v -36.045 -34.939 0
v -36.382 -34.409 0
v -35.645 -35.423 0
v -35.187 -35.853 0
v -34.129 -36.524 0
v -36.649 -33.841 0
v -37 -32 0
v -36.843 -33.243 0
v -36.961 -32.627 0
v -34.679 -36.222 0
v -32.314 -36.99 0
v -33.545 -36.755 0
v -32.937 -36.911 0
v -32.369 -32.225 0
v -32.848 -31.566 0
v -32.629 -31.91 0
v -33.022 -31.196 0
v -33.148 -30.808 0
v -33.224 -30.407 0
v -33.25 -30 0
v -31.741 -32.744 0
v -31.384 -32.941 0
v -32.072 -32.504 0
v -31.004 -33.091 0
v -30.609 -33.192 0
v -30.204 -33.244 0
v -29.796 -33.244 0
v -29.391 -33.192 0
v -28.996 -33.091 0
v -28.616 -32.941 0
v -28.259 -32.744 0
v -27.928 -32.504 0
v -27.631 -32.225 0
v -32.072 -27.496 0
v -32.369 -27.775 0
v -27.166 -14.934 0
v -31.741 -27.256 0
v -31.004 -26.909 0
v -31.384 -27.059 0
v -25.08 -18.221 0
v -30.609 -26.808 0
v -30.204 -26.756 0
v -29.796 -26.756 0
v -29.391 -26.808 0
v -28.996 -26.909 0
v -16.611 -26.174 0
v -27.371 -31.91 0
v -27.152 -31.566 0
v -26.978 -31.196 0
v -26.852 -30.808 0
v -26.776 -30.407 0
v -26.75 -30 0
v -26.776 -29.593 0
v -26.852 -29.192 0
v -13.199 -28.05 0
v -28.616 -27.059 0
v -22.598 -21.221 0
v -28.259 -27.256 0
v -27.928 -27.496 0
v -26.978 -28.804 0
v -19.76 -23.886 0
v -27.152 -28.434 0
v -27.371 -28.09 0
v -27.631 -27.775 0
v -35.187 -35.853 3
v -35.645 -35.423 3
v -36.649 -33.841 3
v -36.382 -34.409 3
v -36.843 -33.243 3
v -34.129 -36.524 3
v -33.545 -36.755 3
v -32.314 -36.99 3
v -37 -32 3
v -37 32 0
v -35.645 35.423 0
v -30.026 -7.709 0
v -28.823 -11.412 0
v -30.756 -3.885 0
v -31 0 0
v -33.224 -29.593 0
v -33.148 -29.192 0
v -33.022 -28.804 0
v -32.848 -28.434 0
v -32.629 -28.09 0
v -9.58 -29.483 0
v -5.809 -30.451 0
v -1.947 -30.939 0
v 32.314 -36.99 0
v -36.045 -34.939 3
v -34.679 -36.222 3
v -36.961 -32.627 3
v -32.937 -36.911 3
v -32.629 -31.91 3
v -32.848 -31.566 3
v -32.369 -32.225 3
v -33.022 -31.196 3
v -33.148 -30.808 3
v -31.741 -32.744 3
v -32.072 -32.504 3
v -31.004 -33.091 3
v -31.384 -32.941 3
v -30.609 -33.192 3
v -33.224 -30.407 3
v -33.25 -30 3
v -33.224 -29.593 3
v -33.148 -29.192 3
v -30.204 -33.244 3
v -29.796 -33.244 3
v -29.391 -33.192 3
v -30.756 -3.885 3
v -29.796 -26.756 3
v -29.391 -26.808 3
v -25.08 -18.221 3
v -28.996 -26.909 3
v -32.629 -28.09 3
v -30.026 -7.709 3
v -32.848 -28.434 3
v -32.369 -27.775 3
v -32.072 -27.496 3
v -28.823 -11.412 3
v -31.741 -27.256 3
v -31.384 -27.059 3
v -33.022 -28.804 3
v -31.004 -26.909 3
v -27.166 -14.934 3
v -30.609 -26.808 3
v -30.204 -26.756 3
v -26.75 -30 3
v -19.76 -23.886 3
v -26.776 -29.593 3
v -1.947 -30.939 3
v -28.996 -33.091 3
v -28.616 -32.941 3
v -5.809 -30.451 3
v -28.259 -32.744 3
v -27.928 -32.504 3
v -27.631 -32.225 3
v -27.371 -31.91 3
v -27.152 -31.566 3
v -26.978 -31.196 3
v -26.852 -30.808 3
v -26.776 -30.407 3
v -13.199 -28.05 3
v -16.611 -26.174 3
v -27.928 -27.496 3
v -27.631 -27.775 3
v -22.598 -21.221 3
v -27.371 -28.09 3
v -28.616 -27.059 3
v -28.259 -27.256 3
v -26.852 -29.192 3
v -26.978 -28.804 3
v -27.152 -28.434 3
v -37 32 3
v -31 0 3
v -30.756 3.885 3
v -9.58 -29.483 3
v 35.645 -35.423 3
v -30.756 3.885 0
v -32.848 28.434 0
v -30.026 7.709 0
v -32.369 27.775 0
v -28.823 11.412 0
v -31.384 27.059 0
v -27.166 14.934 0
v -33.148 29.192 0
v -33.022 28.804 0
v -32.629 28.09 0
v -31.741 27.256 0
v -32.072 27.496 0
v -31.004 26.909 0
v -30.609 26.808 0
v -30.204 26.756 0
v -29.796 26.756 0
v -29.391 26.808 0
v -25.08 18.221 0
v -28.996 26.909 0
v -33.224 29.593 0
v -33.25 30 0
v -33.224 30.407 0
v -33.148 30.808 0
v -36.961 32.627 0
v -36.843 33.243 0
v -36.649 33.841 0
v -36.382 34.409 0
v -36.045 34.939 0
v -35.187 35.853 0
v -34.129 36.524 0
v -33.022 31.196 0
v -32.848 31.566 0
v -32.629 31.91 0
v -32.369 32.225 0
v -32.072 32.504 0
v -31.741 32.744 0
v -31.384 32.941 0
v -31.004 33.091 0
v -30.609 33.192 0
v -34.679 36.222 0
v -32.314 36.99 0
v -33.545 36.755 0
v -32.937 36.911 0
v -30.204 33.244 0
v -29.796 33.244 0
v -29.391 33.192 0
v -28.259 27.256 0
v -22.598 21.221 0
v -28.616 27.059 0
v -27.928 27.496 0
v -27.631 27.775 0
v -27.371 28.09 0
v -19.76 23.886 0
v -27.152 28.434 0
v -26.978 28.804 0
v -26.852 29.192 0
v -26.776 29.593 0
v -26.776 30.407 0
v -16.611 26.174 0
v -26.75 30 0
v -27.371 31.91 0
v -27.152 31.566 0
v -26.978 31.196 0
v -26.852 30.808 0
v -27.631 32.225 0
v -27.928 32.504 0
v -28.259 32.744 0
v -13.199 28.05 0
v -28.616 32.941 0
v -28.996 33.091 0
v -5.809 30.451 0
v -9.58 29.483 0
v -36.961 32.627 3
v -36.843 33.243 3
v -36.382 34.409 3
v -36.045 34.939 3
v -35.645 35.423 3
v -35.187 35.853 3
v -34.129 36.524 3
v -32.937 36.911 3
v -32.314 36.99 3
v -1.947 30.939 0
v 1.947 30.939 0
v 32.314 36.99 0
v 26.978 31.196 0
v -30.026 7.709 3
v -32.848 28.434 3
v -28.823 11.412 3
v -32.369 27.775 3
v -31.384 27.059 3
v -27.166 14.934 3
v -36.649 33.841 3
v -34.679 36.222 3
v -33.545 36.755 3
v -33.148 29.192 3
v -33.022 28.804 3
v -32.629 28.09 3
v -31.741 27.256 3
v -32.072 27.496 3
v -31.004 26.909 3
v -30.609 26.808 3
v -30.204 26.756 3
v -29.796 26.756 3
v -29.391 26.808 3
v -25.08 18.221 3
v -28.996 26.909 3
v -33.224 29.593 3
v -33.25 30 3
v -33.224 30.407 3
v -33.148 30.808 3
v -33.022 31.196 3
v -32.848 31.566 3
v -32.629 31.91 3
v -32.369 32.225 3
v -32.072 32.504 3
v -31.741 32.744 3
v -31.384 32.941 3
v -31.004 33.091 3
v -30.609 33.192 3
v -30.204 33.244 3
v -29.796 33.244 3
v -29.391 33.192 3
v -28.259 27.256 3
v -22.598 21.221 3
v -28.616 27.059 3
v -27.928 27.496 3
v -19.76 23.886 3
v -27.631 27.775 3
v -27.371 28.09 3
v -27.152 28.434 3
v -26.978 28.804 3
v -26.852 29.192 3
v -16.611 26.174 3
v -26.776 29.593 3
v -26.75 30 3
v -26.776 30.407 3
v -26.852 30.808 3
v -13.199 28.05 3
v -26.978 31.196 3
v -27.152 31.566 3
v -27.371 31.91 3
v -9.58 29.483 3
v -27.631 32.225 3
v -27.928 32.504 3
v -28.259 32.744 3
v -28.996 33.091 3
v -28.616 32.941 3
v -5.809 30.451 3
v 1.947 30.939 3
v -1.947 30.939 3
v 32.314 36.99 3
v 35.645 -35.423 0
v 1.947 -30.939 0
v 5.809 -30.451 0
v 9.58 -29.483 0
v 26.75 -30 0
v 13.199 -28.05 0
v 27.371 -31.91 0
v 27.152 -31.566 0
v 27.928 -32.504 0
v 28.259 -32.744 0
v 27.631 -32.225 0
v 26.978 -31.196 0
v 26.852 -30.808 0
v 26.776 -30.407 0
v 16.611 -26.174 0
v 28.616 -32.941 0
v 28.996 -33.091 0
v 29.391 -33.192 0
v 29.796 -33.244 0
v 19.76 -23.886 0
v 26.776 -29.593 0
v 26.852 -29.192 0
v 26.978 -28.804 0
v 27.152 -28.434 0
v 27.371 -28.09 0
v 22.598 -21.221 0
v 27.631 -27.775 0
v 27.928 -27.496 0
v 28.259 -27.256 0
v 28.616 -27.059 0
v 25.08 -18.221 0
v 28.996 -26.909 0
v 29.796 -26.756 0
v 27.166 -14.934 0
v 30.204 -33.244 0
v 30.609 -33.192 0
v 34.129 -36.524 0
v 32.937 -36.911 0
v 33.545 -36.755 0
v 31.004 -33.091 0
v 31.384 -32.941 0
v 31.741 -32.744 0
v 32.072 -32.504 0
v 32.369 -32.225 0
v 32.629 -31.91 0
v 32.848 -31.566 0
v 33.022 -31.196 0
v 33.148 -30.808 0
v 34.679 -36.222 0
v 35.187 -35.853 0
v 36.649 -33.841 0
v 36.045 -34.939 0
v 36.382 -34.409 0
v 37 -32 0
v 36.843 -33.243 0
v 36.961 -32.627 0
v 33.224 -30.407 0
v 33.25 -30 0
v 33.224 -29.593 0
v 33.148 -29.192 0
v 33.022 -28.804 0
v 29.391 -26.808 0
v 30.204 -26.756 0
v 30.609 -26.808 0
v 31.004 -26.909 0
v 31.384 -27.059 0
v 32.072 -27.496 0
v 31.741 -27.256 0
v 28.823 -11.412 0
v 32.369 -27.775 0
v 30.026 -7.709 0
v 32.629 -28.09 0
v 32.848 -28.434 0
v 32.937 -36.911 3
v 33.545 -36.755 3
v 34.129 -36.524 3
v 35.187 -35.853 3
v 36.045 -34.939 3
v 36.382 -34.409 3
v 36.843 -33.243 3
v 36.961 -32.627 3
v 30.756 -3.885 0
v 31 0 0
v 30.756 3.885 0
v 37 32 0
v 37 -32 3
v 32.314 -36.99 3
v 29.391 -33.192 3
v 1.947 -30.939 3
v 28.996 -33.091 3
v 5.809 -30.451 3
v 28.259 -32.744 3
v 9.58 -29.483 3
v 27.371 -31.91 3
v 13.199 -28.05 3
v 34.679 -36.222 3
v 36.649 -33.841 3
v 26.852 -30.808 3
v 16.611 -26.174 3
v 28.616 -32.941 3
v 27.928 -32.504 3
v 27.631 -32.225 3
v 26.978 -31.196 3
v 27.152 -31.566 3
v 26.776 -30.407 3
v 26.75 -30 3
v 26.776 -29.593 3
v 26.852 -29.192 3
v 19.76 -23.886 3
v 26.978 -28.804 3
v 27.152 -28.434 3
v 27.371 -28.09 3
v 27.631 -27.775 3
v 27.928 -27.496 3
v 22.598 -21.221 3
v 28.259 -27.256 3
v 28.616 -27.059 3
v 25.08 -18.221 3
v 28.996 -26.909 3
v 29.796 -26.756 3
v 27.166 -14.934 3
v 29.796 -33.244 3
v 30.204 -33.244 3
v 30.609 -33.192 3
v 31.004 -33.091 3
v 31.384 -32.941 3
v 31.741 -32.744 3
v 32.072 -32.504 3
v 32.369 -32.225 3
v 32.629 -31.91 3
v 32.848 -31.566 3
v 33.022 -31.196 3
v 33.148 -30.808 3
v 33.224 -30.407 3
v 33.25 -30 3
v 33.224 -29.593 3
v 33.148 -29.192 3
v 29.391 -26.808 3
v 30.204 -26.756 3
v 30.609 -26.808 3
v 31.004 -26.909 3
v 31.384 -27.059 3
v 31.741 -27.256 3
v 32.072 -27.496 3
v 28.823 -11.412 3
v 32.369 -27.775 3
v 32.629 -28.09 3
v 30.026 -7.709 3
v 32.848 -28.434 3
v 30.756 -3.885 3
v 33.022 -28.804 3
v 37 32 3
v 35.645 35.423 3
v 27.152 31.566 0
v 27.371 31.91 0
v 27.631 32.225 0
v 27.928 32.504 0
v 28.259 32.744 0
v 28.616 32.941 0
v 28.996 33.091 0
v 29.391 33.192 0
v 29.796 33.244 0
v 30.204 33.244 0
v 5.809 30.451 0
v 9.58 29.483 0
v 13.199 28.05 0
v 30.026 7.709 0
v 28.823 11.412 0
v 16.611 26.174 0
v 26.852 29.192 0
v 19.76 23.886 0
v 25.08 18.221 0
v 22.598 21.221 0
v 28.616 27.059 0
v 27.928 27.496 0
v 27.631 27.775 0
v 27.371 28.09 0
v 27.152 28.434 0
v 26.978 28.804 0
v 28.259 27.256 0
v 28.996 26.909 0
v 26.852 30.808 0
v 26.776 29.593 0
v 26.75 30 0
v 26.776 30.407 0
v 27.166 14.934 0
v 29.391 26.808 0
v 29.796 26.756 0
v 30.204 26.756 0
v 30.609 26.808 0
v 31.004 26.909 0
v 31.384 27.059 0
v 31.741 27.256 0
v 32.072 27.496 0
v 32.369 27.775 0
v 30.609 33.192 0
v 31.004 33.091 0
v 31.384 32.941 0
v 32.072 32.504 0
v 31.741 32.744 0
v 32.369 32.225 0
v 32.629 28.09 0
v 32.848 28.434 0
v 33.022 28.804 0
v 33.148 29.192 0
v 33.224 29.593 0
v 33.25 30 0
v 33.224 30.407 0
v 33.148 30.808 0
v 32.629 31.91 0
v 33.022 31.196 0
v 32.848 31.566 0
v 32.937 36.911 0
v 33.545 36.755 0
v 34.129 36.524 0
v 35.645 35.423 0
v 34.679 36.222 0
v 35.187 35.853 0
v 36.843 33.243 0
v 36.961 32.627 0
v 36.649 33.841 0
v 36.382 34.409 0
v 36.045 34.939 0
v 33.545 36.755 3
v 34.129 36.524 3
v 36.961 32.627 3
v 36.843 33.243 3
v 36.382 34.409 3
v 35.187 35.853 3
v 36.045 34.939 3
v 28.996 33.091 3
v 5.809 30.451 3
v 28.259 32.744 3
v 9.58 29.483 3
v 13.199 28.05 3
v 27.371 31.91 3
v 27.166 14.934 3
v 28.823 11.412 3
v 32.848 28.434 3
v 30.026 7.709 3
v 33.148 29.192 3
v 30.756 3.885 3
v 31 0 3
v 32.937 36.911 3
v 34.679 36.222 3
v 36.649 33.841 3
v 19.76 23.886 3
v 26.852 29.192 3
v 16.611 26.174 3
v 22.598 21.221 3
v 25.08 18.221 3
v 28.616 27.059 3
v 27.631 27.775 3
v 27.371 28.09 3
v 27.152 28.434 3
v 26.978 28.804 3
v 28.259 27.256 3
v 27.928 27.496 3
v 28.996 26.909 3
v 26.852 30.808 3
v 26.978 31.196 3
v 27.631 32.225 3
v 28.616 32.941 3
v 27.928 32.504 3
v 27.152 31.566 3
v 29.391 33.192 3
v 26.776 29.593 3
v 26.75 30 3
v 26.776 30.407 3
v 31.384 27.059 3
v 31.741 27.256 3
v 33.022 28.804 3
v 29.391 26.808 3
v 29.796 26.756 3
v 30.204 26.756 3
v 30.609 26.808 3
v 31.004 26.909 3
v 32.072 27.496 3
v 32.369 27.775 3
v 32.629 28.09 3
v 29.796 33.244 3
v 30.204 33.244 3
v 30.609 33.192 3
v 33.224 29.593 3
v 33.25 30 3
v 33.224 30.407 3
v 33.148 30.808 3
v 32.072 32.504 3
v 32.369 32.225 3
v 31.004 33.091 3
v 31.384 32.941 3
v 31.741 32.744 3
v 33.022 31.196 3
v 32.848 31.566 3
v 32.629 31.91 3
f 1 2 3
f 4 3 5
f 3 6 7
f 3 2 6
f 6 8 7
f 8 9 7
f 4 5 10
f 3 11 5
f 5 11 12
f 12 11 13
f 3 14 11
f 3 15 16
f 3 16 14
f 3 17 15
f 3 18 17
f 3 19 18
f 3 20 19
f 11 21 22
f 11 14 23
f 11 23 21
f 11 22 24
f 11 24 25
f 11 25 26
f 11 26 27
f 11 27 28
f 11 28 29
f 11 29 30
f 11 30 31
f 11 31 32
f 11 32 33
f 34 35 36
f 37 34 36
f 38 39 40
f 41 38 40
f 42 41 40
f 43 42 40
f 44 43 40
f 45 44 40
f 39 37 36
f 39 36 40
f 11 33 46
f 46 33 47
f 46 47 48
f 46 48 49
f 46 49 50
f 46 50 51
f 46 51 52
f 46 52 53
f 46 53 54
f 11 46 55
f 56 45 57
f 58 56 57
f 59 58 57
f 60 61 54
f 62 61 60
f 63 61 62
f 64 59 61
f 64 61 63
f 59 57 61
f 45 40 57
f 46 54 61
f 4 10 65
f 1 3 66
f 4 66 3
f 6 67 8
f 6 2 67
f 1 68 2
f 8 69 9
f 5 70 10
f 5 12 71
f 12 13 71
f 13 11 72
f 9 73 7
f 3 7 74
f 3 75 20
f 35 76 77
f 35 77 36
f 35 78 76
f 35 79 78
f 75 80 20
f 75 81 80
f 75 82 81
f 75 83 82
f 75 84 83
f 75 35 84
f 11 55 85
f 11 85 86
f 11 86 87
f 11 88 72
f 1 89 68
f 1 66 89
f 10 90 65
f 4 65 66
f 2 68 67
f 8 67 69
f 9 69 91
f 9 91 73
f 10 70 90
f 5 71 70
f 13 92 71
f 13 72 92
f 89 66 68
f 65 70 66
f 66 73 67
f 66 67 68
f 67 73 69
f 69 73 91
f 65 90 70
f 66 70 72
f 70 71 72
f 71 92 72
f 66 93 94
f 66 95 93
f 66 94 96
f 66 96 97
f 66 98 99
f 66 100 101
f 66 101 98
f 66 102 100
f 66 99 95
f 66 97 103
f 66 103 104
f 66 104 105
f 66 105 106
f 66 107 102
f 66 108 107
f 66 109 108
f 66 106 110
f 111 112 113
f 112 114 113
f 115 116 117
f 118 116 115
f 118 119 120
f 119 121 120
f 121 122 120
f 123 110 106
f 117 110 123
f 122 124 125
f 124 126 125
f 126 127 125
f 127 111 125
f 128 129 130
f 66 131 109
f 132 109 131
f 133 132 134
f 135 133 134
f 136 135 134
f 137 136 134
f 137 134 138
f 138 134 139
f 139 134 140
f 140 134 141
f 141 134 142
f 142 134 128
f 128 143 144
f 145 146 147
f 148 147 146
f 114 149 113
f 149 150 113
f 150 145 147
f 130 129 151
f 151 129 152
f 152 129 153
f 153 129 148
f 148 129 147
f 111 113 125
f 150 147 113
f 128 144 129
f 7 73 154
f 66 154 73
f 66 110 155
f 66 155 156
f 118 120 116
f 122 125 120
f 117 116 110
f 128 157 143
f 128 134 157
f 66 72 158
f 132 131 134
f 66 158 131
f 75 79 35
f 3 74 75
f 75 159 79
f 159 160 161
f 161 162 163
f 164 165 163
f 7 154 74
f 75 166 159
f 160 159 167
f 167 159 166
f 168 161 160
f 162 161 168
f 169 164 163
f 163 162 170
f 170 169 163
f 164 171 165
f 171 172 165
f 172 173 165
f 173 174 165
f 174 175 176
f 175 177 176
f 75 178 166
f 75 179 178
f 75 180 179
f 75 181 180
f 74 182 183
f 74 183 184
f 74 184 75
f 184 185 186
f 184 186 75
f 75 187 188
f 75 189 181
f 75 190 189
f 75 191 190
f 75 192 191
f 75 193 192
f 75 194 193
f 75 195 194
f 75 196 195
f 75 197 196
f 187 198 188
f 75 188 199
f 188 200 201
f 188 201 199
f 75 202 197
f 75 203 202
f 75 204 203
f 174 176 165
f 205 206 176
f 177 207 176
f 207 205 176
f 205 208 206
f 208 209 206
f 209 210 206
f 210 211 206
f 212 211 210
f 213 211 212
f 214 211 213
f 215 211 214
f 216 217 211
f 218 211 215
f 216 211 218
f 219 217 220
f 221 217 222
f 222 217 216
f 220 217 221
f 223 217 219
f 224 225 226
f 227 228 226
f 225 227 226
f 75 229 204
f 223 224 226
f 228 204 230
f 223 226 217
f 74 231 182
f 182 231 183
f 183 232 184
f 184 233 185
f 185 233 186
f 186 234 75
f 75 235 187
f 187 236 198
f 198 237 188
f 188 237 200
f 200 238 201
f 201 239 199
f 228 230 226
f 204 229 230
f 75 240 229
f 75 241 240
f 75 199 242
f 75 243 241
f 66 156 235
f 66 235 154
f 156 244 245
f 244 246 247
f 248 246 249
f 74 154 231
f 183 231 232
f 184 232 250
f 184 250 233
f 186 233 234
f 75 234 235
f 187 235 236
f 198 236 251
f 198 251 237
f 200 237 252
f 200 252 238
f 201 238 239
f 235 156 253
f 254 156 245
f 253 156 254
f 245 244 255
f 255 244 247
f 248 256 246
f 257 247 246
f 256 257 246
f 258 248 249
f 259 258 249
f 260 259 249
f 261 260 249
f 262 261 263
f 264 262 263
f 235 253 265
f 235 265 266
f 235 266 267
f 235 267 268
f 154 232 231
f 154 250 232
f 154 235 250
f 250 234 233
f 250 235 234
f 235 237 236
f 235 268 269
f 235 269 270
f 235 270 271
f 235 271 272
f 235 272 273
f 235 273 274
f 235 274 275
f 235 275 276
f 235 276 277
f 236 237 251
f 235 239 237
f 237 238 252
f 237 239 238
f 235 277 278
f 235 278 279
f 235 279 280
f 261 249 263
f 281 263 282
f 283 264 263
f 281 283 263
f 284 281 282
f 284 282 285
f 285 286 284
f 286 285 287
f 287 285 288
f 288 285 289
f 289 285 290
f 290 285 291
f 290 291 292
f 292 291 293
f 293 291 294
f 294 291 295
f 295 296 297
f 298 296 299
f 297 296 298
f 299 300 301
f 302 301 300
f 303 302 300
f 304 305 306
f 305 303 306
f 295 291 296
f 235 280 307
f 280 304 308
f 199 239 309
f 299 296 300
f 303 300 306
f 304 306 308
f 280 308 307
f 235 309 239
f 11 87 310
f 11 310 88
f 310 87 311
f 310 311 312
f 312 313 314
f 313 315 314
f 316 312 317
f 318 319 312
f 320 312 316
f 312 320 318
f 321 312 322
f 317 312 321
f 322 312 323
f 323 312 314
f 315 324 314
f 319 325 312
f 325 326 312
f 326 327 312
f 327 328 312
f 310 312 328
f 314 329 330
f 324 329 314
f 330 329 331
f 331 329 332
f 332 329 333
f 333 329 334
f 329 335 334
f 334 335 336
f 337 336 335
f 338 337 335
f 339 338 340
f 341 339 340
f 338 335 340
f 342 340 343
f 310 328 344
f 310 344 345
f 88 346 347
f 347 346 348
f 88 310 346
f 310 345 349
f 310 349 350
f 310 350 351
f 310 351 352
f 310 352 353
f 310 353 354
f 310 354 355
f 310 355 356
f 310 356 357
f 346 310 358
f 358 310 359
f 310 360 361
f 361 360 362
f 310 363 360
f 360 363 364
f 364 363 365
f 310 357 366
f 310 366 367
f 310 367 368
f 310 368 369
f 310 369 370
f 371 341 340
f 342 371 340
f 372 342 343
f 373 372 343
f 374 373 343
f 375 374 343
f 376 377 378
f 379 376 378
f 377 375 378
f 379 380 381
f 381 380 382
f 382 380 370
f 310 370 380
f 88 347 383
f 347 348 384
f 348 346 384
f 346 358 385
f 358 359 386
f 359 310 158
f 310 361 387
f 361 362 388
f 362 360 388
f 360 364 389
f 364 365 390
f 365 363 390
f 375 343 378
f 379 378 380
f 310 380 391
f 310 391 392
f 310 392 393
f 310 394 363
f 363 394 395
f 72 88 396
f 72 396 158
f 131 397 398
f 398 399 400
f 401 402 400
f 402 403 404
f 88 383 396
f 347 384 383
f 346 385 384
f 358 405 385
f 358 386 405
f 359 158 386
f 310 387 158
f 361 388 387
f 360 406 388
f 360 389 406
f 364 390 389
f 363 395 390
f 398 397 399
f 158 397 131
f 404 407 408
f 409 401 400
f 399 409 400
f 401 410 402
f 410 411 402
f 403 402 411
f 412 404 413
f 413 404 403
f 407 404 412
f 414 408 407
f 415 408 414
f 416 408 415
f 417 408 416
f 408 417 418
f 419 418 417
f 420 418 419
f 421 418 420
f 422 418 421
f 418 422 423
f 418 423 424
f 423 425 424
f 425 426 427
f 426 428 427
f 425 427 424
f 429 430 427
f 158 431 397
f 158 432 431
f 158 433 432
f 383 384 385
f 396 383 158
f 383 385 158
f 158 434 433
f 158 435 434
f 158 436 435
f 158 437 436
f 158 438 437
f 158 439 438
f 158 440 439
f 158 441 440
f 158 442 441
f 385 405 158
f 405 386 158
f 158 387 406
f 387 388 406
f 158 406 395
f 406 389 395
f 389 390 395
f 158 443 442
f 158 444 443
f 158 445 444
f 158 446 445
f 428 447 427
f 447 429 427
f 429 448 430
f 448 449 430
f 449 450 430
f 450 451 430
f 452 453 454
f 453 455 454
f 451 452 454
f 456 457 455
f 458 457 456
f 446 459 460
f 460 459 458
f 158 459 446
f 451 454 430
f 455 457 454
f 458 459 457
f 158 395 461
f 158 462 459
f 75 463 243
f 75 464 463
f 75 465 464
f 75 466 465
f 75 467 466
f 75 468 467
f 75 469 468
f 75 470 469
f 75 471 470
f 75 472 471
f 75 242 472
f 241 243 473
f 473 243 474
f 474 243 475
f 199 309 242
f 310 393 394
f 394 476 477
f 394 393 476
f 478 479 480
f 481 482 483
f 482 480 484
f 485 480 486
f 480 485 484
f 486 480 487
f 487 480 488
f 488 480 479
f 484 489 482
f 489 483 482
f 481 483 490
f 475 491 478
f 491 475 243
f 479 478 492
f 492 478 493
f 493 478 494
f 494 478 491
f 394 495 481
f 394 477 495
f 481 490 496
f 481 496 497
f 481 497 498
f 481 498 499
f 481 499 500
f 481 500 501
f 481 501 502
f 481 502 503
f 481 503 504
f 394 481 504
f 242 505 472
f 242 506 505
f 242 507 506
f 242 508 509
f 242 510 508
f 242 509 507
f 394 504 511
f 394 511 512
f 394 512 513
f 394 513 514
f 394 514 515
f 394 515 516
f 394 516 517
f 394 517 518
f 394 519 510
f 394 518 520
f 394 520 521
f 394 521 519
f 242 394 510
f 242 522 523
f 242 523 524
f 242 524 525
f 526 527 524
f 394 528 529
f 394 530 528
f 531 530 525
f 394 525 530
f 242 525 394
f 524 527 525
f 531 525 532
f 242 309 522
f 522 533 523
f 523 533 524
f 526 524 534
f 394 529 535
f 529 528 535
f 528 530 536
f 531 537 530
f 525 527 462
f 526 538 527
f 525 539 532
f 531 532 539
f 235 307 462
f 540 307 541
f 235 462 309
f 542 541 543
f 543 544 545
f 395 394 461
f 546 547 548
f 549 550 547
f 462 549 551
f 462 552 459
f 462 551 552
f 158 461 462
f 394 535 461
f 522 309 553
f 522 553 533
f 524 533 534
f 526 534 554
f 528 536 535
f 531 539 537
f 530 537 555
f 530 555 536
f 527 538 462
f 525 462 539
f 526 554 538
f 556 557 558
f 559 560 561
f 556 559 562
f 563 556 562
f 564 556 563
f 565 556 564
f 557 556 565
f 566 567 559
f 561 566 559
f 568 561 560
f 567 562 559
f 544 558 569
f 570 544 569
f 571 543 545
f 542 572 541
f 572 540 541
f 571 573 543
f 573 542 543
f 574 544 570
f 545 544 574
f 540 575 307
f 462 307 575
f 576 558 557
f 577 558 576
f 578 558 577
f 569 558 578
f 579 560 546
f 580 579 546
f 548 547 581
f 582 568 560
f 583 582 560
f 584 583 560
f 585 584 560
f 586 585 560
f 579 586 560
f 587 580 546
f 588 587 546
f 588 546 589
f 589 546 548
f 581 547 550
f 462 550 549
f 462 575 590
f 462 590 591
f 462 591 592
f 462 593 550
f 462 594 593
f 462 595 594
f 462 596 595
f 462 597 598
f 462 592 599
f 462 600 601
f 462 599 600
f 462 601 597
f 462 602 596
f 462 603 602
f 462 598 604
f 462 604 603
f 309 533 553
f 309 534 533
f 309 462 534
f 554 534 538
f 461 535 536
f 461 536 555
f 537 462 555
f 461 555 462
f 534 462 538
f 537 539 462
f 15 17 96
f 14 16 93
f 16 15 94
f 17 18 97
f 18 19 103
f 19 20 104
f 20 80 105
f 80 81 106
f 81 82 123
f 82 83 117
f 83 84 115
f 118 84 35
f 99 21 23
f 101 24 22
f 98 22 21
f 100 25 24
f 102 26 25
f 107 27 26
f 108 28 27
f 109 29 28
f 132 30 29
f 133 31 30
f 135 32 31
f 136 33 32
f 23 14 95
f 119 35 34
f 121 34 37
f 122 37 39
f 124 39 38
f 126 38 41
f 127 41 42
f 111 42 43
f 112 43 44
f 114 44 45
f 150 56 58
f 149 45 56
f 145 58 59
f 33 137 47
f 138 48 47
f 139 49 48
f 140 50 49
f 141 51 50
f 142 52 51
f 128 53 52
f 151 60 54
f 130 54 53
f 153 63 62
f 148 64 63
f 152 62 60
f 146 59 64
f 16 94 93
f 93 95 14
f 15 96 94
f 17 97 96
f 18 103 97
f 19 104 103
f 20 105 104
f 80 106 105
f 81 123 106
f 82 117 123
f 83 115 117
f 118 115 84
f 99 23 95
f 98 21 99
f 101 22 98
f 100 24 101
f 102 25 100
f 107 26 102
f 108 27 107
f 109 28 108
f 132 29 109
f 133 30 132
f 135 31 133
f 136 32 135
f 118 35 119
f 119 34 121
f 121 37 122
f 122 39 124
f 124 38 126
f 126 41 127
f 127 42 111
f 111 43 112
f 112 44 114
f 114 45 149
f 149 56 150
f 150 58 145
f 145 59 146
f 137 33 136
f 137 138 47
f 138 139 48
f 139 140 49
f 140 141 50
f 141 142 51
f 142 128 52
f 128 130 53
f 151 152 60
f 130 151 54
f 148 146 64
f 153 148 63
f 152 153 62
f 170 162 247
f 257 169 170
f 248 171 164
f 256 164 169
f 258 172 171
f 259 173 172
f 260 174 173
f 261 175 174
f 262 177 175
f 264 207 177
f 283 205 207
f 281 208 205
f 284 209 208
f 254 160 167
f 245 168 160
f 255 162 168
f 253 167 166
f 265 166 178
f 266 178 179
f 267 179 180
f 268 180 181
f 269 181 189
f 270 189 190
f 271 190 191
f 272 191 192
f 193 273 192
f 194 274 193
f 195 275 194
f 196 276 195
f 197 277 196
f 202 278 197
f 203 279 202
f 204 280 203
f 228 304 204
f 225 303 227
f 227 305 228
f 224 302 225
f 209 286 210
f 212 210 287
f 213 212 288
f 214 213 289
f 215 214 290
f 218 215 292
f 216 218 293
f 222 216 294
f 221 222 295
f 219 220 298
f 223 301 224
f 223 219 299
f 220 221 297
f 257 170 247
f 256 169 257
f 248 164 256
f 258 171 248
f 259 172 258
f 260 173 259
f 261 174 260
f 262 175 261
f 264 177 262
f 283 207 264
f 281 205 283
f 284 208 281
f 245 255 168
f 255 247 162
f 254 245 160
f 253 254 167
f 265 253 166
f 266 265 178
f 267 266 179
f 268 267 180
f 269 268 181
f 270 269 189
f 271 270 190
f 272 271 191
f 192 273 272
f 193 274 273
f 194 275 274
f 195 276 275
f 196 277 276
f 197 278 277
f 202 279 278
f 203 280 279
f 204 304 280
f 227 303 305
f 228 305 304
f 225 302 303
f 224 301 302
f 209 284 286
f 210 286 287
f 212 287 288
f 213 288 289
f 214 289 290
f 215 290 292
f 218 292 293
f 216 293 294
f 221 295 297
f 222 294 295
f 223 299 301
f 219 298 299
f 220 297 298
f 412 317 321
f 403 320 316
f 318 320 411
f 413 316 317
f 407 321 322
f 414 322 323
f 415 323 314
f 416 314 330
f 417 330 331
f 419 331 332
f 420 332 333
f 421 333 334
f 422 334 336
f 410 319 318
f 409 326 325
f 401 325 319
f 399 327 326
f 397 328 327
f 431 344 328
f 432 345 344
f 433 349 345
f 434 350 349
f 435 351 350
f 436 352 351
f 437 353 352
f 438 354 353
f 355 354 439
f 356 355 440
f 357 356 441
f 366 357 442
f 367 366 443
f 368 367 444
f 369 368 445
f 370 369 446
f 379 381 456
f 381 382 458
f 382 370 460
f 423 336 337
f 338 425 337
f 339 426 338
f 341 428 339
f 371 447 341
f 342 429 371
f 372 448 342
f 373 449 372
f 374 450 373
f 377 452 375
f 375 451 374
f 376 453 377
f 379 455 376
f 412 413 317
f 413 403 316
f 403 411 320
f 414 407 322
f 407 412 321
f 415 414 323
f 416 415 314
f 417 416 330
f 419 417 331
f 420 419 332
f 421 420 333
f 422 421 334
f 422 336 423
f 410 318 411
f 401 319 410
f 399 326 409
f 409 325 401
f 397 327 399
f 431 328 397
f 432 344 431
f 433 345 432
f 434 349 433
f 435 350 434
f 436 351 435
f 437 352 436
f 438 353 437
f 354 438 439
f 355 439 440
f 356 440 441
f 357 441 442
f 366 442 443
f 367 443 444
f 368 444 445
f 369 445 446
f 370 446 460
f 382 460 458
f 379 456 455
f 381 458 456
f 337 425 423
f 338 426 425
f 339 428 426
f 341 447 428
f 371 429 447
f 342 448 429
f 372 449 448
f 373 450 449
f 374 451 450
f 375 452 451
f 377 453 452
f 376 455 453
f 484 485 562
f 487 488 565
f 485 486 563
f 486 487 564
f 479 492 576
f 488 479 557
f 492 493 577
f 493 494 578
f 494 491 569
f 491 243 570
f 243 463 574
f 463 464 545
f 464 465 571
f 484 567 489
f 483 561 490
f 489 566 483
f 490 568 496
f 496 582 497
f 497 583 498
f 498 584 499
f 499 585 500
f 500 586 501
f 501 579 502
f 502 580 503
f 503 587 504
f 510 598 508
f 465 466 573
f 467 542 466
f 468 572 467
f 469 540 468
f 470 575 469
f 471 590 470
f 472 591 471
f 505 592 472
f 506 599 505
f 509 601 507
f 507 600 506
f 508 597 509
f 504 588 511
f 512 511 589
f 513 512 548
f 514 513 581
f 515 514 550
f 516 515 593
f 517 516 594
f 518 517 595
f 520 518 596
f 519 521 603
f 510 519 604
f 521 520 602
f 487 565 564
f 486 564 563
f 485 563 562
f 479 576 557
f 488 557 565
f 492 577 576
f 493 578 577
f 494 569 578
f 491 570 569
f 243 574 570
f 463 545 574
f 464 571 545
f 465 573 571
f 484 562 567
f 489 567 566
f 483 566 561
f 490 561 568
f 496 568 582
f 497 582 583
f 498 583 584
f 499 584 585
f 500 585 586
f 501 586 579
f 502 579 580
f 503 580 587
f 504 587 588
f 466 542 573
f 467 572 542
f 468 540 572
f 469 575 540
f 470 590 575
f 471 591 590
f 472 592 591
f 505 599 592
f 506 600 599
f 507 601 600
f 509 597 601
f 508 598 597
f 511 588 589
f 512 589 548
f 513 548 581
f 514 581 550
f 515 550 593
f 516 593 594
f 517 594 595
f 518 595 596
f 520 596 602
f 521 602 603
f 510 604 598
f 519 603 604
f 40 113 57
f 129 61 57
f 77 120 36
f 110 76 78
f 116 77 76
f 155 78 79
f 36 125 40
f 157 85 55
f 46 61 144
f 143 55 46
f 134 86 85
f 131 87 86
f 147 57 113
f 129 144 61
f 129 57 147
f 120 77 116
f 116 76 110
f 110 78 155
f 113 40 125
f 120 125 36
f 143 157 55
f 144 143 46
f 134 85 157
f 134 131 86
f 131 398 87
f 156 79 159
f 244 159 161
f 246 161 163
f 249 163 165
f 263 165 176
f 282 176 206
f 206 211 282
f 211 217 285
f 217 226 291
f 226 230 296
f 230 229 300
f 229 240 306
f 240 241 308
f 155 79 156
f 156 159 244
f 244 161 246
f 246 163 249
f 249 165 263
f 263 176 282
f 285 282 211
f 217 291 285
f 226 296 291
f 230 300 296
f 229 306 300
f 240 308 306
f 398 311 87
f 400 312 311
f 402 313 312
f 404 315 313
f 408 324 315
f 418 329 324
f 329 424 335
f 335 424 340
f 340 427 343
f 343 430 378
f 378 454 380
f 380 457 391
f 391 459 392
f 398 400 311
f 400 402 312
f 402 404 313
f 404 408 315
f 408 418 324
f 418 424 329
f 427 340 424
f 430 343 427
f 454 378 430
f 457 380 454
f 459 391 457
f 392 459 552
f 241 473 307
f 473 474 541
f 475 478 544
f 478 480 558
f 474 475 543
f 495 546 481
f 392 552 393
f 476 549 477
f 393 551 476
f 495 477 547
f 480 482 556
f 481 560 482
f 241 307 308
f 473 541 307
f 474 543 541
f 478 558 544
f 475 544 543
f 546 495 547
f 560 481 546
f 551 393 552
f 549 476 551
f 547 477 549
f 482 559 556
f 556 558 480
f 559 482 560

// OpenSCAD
$fn = 50;

difference() {
	union() {
		hull() {
			translate(v = [-32.0, 32.0, 0]) {
				cylinder(h = 3, r = 5);
			}
			translate(v = [32.0, 32.0, 0]) {
				cylinder(h = 3, r = 5);
			}
			translate(v = [-32.0, -32.0, 0]) {
				cylinder(h = 3, r = 5);
			}
			translate(v = [32.0, -32.0, 0]) {
				cylinder(h = 3, r = 5);
			}
		}
	}
	union() {
		translate(v = [-30.0, -30.0, -100.0]) {
			cylinder(h = 200, r = 3.25);
		}
		translate(v = [-30.0, 30.0, -100.0]) {
			cylinder(h = 200, r = 3.25);
		}
		translate(v = [30.0, -30.0, -100.0]) {
			cylinder(h = 200, r = 3.25);
		}
		translate(v = [30.0, 30.0, -100.0]) {
			cylinder(h = 200, r = 3.25);
		}
		translate(v = [-30.0, -30.0, -100.0]) {
			cylinder(h = 200, r = 1.8);
		}
		translate(v = [-30.0, 30.0, -100.0]) {
			cylinder(h = 200, r = 1.8);
		}
		translate(v = [30.0, -30.0, -100.0]) {
			cylinder(h = 200, r = 1.8);
		}
		translate(v = [30.0, 30.0, -100.0]) {
			cylinder(h = 200, r = 1.8);
		}
		cylinder(h = 3, r = 31.0);
	}
}
